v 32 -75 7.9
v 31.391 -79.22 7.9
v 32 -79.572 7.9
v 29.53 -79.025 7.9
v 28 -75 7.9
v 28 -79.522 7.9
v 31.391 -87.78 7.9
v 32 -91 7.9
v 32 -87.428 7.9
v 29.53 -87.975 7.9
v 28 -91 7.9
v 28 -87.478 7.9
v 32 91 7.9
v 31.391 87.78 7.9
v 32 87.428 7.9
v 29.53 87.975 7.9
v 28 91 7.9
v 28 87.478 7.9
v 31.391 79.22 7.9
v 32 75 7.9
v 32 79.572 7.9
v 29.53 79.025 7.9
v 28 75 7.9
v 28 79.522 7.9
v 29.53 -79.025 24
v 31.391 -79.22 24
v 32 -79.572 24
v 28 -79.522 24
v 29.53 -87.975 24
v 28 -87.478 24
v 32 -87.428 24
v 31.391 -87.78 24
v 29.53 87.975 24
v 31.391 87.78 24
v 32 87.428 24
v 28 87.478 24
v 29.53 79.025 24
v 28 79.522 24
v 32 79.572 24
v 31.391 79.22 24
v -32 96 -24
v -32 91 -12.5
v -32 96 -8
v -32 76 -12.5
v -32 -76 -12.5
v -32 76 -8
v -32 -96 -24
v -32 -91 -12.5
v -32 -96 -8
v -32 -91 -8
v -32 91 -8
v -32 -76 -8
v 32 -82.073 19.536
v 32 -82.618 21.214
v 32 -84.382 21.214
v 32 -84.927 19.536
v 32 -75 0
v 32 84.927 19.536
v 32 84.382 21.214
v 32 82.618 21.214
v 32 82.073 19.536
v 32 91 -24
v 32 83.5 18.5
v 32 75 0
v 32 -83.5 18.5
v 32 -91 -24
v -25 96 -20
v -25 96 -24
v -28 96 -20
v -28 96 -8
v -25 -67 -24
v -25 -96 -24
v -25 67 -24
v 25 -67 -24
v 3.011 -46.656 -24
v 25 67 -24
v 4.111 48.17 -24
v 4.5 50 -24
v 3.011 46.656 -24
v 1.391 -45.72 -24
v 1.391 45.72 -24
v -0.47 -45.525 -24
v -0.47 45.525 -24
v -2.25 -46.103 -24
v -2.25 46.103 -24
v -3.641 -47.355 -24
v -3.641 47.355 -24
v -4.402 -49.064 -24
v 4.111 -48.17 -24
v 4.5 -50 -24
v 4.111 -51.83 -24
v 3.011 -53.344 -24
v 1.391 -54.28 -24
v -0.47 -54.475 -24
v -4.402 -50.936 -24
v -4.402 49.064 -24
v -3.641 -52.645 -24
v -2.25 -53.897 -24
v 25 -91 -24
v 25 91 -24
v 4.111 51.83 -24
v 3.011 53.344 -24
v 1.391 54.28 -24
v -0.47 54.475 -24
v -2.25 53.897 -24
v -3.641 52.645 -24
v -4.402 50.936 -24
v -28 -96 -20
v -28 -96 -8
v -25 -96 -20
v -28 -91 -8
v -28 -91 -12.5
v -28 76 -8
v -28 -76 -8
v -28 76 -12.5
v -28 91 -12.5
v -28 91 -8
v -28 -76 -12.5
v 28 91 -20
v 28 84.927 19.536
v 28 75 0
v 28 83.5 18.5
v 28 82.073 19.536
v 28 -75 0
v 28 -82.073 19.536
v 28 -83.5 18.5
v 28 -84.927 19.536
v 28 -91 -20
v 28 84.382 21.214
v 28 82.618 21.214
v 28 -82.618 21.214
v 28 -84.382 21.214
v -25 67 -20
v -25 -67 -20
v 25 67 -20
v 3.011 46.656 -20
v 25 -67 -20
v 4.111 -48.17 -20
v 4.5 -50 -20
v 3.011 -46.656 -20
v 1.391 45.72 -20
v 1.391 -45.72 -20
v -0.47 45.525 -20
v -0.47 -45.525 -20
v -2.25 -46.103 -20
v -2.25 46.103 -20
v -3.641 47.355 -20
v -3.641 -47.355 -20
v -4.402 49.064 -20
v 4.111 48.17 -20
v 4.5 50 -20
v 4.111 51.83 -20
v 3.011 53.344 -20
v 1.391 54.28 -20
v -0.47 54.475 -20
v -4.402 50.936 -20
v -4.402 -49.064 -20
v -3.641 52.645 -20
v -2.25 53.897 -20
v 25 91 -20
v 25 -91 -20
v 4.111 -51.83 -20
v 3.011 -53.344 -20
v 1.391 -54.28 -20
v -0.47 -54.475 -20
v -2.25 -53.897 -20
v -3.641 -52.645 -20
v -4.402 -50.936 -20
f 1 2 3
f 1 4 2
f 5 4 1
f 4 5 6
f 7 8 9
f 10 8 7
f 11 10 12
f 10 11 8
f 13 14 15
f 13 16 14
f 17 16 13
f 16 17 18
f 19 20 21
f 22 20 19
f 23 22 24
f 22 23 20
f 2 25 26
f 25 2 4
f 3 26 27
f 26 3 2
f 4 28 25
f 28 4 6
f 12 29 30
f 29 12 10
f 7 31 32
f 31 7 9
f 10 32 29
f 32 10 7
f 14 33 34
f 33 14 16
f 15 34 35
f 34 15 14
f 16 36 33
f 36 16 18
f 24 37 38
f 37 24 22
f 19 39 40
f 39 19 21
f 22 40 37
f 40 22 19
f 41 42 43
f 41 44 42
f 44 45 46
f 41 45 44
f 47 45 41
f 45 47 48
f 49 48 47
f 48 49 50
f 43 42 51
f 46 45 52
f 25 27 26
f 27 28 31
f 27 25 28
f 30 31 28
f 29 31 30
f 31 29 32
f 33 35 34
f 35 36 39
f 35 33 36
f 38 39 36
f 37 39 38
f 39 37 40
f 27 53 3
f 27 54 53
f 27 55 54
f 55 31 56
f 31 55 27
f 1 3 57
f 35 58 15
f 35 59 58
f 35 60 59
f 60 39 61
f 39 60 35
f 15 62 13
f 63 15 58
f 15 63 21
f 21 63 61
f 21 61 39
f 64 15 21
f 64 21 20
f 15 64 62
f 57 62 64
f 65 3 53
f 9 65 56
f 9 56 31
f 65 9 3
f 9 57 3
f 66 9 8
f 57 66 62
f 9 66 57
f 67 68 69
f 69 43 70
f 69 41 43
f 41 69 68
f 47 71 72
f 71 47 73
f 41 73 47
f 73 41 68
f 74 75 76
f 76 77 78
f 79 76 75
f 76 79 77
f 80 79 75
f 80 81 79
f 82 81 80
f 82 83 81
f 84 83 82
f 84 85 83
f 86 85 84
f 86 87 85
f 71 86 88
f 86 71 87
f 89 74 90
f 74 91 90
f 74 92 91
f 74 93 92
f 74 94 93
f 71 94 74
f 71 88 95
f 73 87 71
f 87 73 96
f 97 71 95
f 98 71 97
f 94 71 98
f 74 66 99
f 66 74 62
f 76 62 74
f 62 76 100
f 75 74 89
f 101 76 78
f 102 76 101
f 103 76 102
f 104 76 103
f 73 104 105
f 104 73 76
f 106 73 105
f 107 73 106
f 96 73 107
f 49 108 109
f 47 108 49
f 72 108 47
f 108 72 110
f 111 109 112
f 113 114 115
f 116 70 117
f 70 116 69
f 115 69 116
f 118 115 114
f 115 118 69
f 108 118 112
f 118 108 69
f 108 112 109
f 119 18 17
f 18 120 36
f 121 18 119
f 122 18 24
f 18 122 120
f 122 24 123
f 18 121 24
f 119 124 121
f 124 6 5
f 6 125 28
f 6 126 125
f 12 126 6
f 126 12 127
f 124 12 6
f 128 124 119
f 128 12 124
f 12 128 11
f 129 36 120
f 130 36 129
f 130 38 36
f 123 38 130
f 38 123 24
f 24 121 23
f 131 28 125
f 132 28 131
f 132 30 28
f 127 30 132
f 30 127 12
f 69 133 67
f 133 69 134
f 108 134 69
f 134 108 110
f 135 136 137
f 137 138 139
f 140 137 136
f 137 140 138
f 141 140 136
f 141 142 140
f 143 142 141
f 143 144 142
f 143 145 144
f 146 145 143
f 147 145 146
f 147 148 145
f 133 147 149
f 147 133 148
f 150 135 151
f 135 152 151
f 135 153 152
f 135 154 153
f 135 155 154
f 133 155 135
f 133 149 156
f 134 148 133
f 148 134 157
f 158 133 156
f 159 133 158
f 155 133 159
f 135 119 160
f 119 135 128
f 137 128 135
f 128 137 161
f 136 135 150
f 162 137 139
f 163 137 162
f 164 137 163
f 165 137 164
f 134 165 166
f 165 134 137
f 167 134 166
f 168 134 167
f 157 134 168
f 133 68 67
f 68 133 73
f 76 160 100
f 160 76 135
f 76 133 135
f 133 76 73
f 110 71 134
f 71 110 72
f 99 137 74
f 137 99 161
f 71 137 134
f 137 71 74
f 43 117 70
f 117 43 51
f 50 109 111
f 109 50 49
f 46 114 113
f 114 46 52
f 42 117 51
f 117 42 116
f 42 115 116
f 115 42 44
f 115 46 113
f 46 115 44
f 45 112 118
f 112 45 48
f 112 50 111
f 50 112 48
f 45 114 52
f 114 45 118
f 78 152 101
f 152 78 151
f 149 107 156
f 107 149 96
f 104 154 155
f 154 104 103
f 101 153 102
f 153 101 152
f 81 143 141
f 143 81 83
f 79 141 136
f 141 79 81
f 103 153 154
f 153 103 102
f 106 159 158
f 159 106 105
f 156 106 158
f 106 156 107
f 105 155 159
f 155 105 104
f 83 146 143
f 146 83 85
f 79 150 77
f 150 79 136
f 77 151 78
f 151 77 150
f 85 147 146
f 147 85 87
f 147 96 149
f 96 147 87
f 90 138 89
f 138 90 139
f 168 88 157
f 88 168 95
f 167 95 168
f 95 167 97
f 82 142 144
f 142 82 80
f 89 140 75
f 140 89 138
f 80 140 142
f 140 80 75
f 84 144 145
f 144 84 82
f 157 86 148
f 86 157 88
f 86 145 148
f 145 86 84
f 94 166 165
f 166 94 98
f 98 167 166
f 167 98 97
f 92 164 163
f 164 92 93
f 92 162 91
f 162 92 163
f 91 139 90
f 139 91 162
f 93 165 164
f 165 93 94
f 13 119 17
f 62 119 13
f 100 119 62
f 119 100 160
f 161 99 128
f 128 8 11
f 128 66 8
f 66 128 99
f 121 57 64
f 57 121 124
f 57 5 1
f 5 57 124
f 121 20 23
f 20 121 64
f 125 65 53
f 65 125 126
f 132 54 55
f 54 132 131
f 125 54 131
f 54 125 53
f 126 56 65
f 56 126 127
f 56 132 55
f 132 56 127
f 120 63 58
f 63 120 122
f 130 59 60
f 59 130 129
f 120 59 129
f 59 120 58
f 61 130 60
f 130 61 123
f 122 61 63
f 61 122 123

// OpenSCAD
difference () {
  cube ([64, 192, 48], center=true);
  translate ([0, 0, 2]) {
    cube ([56, 192, 44], center=true);
  }
  translate ([0, 83.5, 0]) {
    cube ([50, 33, 48], center=true);
  }
  translate ([0, -83.5, 0]) {
    cube ([50, 33, 48], center=true);
  }
  translate ([-4, 0, 16]) {
    cube ([64, 192, 48], center=true);
  }
  translate ([-30, 83.5, -9.5]) {
    cube ([4, 15, 6], center=true);
  }
  translate ([-30, -83.5, -9.5]) {
    cube ([4, 15, 6], center=true);
  }
  translate ([0, 50, -22]) {
    cylinder (h=4, r=4.5, center=true);
  }
  translate ([0, -50, -22]) {
    cylinder (h=4, r=4.5, center=true);
  }
  translate ([30, -83.5, 16]) {
    difference () {
      cylinder (h=16.2, r=100, center=true);
      cylinder (h=16.2, r=4.5, center=true);
    }
  }
  translate ([30, 83.5, 16]) {
    difference () {
      cylinder (h=16.2, r=100, center=true);
      cylinder (h=16.2, r=4.5, center=true);
    }
  }
  translate ([30, 96, 0]) {
    cube ([10, 10, 48], center=true);
  }
  translate ([30, -96, 0]) {
    cube ([10, 10, 48], center=true);
  }
  translate ([30, 0, 24]) {
    cube ([10, 150, 48], center=true);
  }
  translate ([30, -83.5, 20]) {
    rotate (a=90.0, v=[0, 1, 0]) {
      cylinder (h=4, r=1.5, center=true);
    }
  }
  translate ([30, 83.5, 20]) {
    rotate (a=90.0, v=[0, 1, 0]) {
      cylinder (h=4, r=1.5, center=true);
    }
  }
}
